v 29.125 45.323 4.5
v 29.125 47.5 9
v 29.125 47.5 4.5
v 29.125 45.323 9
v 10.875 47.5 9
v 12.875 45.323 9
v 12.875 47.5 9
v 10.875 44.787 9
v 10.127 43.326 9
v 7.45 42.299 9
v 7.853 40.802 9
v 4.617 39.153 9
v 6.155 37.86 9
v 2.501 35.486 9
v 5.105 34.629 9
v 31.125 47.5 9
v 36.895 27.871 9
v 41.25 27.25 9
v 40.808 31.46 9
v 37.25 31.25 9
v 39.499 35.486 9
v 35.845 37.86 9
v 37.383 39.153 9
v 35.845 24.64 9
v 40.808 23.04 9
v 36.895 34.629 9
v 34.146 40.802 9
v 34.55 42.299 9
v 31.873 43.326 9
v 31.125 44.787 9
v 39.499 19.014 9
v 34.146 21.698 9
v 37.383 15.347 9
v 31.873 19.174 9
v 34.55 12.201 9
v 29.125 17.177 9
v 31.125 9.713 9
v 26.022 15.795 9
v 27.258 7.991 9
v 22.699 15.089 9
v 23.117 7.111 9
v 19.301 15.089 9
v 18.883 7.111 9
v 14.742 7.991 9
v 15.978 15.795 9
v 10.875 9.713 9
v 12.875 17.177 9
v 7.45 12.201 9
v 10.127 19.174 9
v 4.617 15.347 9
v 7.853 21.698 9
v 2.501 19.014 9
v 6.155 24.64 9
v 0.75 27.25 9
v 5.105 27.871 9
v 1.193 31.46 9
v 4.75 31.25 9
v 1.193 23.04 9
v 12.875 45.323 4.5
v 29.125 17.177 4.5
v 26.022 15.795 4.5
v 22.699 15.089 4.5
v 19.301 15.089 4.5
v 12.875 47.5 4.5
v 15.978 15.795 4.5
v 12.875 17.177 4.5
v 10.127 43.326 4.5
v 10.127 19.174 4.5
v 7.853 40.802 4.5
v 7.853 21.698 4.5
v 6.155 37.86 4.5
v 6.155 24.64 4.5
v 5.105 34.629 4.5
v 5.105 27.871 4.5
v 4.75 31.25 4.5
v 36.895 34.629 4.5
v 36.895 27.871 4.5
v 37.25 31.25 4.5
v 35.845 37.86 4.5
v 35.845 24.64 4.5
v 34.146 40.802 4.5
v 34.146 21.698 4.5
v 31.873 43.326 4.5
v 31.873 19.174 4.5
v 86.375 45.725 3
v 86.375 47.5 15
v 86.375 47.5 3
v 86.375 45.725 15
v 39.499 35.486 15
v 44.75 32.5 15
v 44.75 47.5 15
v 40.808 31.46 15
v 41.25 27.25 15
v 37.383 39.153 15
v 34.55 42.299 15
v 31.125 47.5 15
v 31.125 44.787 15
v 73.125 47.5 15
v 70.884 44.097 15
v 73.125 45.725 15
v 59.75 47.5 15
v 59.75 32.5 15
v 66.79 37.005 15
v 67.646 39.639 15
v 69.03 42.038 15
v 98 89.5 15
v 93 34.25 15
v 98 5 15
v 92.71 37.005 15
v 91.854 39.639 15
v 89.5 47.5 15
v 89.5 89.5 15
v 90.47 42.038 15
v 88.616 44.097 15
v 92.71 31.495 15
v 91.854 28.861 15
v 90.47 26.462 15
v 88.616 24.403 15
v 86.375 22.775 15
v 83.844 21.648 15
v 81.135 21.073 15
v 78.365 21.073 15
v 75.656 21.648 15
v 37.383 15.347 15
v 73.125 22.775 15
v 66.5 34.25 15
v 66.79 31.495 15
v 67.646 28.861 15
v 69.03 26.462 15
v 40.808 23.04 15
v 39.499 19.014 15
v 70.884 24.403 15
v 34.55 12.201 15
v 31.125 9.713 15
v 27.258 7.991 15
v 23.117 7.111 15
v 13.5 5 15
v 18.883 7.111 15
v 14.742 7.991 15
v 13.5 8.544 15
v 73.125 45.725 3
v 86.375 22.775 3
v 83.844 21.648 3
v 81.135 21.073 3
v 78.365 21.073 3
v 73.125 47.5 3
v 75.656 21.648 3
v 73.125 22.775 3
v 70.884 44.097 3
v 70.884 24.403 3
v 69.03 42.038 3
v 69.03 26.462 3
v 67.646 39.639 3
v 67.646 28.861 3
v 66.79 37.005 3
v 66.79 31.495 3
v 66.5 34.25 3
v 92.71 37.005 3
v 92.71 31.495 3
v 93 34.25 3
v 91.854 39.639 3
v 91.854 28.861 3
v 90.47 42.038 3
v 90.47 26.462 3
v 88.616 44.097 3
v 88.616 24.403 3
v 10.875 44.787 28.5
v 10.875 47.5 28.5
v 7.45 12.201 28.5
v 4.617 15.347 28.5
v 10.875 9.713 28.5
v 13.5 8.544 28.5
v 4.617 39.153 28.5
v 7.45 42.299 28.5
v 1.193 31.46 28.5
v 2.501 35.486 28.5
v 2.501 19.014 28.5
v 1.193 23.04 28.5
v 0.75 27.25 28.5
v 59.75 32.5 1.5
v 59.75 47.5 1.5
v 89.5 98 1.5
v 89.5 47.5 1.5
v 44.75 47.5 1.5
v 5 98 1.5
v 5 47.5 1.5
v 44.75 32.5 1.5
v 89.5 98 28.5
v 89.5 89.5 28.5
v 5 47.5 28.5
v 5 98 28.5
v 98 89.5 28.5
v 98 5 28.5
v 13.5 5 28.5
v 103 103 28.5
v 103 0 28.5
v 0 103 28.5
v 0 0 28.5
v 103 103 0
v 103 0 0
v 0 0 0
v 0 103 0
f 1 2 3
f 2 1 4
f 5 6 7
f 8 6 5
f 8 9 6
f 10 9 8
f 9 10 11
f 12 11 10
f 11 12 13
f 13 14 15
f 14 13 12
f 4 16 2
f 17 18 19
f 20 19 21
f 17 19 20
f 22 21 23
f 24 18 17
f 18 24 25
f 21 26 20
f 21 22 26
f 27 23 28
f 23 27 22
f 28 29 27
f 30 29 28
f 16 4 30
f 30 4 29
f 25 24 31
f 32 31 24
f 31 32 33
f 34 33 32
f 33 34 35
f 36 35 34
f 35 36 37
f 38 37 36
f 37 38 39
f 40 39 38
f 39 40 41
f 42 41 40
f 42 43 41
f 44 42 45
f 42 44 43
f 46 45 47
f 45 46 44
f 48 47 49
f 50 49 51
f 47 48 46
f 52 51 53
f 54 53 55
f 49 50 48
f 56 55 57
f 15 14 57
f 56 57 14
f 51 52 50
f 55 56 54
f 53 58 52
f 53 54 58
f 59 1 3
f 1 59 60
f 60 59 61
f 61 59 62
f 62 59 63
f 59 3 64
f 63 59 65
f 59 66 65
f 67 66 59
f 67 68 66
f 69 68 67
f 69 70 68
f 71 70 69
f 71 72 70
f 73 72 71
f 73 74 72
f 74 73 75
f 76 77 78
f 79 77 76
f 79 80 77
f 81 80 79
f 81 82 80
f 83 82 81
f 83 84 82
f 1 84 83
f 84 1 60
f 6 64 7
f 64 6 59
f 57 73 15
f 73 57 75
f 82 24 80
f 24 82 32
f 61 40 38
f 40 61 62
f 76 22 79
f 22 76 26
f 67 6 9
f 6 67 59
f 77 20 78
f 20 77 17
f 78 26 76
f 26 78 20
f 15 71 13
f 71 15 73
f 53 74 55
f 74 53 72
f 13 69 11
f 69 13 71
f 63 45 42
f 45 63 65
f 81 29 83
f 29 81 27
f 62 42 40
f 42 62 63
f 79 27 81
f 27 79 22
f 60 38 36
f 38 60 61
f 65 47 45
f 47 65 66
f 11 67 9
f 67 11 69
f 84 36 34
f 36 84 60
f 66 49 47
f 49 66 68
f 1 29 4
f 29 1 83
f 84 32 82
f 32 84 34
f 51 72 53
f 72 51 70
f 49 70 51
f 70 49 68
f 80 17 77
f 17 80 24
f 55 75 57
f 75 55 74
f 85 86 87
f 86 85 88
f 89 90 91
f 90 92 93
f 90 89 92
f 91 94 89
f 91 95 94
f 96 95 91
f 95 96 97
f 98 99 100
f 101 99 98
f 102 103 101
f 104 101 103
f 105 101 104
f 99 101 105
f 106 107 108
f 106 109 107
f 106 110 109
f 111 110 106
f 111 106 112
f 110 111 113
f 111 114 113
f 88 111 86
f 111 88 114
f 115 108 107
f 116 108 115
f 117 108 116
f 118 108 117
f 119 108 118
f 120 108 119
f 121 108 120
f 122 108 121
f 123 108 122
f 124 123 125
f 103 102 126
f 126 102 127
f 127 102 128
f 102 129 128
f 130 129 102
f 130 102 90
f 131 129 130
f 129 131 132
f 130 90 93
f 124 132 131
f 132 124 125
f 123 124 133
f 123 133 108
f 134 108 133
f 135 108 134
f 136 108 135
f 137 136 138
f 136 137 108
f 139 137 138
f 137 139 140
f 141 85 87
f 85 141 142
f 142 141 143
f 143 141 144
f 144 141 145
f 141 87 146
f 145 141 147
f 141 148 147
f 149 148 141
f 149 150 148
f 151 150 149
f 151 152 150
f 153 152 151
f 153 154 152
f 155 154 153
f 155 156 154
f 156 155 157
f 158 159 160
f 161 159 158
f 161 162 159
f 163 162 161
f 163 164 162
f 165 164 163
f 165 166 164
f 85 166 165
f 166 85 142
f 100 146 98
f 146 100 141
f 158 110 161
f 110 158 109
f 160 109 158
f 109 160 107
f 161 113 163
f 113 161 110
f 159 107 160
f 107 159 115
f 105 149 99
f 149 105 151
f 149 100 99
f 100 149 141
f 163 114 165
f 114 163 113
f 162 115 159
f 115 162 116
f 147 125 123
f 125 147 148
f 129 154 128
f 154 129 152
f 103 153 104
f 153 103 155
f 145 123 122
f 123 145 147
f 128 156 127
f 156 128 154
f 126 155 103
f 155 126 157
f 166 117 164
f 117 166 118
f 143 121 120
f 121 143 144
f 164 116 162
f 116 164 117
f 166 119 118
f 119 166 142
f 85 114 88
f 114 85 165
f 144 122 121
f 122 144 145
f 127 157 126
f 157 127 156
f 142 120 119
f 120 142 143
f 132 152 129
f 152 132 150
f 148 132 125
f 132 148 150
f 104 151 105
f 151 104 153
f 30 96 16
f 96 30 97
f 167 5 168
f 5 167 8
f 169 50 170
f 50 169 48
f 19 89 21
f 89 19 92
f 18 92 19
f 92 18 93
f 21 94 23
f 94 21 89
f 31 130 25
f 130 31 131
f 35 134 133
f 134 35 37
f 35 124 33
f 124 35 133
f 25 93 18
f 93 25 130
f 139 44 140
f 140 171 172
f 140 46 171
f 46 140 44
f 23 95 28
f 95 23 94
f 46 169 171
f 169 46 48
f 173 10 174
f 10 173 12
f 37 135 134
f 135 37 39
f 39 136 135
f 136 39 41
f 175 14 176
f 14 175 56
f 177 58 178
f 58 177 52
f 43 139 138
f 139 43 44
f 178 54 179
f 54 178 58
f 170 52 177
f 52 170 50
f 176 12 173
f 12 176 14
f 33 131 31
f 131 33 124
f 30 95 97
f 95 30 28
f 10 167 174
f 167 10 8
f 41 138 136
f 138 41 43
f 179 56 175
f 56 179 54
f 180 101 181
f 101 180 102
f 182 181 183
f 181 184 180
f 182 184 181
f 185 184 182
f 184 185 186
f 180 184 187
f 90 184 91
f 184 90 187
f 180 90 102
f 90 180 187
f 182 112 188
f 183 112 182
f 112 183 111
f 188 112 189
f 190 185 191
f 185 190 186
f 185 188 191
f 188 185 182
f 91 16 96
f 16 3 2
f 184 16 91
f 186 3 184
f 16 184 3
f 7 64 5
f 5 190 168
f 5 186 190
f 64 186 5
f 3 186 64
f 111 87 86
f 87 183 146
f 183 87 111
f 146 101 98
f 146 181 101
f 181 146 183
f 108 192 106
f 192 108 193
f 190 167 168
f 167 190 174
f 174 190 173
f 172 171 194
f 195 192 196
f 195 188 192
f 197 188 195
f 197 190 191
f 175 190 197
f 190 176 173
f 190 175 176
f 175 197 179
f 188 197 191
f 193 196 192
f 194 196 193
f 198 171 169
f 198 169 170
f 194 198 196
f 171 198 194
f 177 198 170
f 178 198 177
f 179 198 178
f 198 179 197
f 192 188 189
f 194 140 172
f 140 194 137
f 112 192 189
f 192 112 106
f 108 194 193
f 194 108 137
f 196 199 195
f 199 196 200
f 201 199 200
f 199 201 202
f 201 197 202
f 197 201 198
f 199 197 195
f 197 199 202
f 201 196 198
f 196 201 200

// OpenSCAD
TILE_HEIGHT = 1.5;

BOX_WIDTH = 103;
BOX_DEPTH = 103;
BOX_HEIGHT = 31.5;

BOOK_HEIGHT = 3;
WALL_WIDTH = 5;
SLOT_WIDTH = 15;

function tile_h(count) = count * TILE_HEIGHT;
base_height = BOX_HEIGHT - BOOK_HEIGHT;
area_edge = BOX_WIDTH - WALL_WIDTH;

AREA_WIDTH = 84.5;
AREA_DEPTH = 84.5;
AREA_COUNT = 9;
AREA_HEIGHT = tile_h(AREA_COUNT);

token_top = base_height - AREA_HEIGHT;

ACTION_TOKEN_DIAMETER = 40.5;
ACTION_TOKEN_RADIUS = ACTION_TOKEN_DIAMETER / 2;
ACTION_TOKEN_COUNT = 4;
ACTION_TOKEN_HEIGHT = tile_h(ACTION_TOKEN_COUNT);
ACTION_TOKEN_OFFSET_X = area_edge - AREA_WIDTH + ACTION_TOKEN_RADIUS - (ACTION_TOKEN_DIAMETER - SLOT_WIDTH) / 2;

DETECTIVE_TOKEN_DIAMETER = 32.5;
DETECTIVE_TOKEN_RADIUS = DETECTIVE_TOKEN_DIAMETER / 2;
DETECTIVE_TOKEN_COUNT = 3;
DETECTIVE_TOKEN_HEIGHT = tile_h(DETECTIVE_TOKEN_COUNT);

TIME_TOKEN_DIAMETER = 26.5;
TIME_TOKEN_RADIUS = TIME_TOKEN_DIAMETER / 2;
TIME_TOKEN_COUNT = 8;
TIME_TOKEN_HEIGHT = tile_h(TIME_TOKEN_COUNT);

ALIBI_WIDTH = 84.5;
ALIBI_DEPTH = 50.5;
ALIBI_COUNT = 9;
ALIBI_HEIGHT = tile_h(ALIBI_COUNT);

alibi_edge = BOX_DEPTH - WALL_WIDTH - ALIBI_DEPTH;

module detective_tokens() {
    half_radius = DETECTIVE_TOKEN_RADIUS / 2;
    offset_x = ACTION_TOKEN_OFFSET_X;
    offset_y = alibi_edge - DETECTIVE_TOKEN_RADIUS;
    offset_z = token_top - DETECTIVE_TOKEN_HEIGHT - ACTION_TOKEN_HEIGHT;
    
    translate([offset_x, offset_y, offset_z])
    union() {
        translate([-half_radius, half_radius, 0])
        cube([DETECTIVE_TOKEN_RADIUS, SLOT_WIDTH, DETECTIVE_TOKEN_HEIGHT]);
        cylinder(h = DETECTIVE_TOKEN_HEIGHT, d = DETECTIVE_TOKEN_DIAMETER);
    }
}

module time_tokens() {
    half_radius = TIME_TOKEN_RADIUS / 2;
    offset_x = area_edge - DETECTIVE_TOKEN_RADIUS - 2;
    offset_y = alibi_edge - TIME_TOKEN_RADIUS;
    offset_z = token_top - TIME_TOKEN_HEIGHT;
    
    translate([offset_x, offset_y, offset_z])
    union() {
        translate([-half_radius, half_radius, 0])
        cube([TIME_TOKEN_RADIUS, SLOT_WIDTH, TIME_TOKEN_HEIGHT]);
        cylinder(h = TIME_TOKEN_HEIGHT, d = TIME_TOKEN_DIAMETER);
    }
}

module action_tokens() {
    half_radius = ACTION_TOKEN_RADIUS / 2;
    offset_y = alibi_edge - ACTION_TOKEN_RADIUS;
    offset_z = token_top - ACTION_TOKEN_HEIGHT;
    
    translate([ACTION_TOKEN_OFFSET_X, offset_y, offset_z])
    union() {
        translate([-half_radius, half_radius, 0])
        cube([ACTION_TOKEN_RADIUS, SLOT_WIDTH, ACTION_TOKEN_HEIGHT + 30]);
        cylinder(h = ACTION_TOKEN_HEIGHT + 30, d = ACTION_TOKEN_DIAMETER);
    }
}

module token_slots() {
    union() {
        detective_tokens();
        time_tokens();
        action_tokens();
    }
}

module alibi_block() {
    offset_x = WALL_WIDTH ;
    offset_y = BOX_DEPTH - ALIBI_DEPTH - WALL_WIDTH;
    offset_z = base_height - AREA_HEIGHT - ALIBI_HEIGHT;
    
    translate([offset_x, offset_y, offset_z])
    union() {
        translate([(ALIBI_WIDTH - SLOT_WIDTH) / 2 + 5, -SLOT_WIDTH, 0])
        cube([SLOT_WIDTH, ALIBI_DEPTH, BOX_HEIGHT]);
        cube([ALIBI_WIDTH, ALIBI_DEPTH, BOX_HEIGHT]);
    }
}

module area_block() {
    offset = BOX_WIDTH - AREA_WIDTH - WALL_WIDTH;
    translate([offset, WALL_WIDTH, base_height - AREA_HEIGHT])
    cube([AREA_WIDTH, AREA_DEPTH, AREA_HEIGHT]);
}

module base_block() {
    cube([BOX_WIDTH, BOX_DEPTH, base_height]);
}

difference() {
    base_block();
    union() {
        token_slots();
        alibi_block();
        area_block();
    }
}
